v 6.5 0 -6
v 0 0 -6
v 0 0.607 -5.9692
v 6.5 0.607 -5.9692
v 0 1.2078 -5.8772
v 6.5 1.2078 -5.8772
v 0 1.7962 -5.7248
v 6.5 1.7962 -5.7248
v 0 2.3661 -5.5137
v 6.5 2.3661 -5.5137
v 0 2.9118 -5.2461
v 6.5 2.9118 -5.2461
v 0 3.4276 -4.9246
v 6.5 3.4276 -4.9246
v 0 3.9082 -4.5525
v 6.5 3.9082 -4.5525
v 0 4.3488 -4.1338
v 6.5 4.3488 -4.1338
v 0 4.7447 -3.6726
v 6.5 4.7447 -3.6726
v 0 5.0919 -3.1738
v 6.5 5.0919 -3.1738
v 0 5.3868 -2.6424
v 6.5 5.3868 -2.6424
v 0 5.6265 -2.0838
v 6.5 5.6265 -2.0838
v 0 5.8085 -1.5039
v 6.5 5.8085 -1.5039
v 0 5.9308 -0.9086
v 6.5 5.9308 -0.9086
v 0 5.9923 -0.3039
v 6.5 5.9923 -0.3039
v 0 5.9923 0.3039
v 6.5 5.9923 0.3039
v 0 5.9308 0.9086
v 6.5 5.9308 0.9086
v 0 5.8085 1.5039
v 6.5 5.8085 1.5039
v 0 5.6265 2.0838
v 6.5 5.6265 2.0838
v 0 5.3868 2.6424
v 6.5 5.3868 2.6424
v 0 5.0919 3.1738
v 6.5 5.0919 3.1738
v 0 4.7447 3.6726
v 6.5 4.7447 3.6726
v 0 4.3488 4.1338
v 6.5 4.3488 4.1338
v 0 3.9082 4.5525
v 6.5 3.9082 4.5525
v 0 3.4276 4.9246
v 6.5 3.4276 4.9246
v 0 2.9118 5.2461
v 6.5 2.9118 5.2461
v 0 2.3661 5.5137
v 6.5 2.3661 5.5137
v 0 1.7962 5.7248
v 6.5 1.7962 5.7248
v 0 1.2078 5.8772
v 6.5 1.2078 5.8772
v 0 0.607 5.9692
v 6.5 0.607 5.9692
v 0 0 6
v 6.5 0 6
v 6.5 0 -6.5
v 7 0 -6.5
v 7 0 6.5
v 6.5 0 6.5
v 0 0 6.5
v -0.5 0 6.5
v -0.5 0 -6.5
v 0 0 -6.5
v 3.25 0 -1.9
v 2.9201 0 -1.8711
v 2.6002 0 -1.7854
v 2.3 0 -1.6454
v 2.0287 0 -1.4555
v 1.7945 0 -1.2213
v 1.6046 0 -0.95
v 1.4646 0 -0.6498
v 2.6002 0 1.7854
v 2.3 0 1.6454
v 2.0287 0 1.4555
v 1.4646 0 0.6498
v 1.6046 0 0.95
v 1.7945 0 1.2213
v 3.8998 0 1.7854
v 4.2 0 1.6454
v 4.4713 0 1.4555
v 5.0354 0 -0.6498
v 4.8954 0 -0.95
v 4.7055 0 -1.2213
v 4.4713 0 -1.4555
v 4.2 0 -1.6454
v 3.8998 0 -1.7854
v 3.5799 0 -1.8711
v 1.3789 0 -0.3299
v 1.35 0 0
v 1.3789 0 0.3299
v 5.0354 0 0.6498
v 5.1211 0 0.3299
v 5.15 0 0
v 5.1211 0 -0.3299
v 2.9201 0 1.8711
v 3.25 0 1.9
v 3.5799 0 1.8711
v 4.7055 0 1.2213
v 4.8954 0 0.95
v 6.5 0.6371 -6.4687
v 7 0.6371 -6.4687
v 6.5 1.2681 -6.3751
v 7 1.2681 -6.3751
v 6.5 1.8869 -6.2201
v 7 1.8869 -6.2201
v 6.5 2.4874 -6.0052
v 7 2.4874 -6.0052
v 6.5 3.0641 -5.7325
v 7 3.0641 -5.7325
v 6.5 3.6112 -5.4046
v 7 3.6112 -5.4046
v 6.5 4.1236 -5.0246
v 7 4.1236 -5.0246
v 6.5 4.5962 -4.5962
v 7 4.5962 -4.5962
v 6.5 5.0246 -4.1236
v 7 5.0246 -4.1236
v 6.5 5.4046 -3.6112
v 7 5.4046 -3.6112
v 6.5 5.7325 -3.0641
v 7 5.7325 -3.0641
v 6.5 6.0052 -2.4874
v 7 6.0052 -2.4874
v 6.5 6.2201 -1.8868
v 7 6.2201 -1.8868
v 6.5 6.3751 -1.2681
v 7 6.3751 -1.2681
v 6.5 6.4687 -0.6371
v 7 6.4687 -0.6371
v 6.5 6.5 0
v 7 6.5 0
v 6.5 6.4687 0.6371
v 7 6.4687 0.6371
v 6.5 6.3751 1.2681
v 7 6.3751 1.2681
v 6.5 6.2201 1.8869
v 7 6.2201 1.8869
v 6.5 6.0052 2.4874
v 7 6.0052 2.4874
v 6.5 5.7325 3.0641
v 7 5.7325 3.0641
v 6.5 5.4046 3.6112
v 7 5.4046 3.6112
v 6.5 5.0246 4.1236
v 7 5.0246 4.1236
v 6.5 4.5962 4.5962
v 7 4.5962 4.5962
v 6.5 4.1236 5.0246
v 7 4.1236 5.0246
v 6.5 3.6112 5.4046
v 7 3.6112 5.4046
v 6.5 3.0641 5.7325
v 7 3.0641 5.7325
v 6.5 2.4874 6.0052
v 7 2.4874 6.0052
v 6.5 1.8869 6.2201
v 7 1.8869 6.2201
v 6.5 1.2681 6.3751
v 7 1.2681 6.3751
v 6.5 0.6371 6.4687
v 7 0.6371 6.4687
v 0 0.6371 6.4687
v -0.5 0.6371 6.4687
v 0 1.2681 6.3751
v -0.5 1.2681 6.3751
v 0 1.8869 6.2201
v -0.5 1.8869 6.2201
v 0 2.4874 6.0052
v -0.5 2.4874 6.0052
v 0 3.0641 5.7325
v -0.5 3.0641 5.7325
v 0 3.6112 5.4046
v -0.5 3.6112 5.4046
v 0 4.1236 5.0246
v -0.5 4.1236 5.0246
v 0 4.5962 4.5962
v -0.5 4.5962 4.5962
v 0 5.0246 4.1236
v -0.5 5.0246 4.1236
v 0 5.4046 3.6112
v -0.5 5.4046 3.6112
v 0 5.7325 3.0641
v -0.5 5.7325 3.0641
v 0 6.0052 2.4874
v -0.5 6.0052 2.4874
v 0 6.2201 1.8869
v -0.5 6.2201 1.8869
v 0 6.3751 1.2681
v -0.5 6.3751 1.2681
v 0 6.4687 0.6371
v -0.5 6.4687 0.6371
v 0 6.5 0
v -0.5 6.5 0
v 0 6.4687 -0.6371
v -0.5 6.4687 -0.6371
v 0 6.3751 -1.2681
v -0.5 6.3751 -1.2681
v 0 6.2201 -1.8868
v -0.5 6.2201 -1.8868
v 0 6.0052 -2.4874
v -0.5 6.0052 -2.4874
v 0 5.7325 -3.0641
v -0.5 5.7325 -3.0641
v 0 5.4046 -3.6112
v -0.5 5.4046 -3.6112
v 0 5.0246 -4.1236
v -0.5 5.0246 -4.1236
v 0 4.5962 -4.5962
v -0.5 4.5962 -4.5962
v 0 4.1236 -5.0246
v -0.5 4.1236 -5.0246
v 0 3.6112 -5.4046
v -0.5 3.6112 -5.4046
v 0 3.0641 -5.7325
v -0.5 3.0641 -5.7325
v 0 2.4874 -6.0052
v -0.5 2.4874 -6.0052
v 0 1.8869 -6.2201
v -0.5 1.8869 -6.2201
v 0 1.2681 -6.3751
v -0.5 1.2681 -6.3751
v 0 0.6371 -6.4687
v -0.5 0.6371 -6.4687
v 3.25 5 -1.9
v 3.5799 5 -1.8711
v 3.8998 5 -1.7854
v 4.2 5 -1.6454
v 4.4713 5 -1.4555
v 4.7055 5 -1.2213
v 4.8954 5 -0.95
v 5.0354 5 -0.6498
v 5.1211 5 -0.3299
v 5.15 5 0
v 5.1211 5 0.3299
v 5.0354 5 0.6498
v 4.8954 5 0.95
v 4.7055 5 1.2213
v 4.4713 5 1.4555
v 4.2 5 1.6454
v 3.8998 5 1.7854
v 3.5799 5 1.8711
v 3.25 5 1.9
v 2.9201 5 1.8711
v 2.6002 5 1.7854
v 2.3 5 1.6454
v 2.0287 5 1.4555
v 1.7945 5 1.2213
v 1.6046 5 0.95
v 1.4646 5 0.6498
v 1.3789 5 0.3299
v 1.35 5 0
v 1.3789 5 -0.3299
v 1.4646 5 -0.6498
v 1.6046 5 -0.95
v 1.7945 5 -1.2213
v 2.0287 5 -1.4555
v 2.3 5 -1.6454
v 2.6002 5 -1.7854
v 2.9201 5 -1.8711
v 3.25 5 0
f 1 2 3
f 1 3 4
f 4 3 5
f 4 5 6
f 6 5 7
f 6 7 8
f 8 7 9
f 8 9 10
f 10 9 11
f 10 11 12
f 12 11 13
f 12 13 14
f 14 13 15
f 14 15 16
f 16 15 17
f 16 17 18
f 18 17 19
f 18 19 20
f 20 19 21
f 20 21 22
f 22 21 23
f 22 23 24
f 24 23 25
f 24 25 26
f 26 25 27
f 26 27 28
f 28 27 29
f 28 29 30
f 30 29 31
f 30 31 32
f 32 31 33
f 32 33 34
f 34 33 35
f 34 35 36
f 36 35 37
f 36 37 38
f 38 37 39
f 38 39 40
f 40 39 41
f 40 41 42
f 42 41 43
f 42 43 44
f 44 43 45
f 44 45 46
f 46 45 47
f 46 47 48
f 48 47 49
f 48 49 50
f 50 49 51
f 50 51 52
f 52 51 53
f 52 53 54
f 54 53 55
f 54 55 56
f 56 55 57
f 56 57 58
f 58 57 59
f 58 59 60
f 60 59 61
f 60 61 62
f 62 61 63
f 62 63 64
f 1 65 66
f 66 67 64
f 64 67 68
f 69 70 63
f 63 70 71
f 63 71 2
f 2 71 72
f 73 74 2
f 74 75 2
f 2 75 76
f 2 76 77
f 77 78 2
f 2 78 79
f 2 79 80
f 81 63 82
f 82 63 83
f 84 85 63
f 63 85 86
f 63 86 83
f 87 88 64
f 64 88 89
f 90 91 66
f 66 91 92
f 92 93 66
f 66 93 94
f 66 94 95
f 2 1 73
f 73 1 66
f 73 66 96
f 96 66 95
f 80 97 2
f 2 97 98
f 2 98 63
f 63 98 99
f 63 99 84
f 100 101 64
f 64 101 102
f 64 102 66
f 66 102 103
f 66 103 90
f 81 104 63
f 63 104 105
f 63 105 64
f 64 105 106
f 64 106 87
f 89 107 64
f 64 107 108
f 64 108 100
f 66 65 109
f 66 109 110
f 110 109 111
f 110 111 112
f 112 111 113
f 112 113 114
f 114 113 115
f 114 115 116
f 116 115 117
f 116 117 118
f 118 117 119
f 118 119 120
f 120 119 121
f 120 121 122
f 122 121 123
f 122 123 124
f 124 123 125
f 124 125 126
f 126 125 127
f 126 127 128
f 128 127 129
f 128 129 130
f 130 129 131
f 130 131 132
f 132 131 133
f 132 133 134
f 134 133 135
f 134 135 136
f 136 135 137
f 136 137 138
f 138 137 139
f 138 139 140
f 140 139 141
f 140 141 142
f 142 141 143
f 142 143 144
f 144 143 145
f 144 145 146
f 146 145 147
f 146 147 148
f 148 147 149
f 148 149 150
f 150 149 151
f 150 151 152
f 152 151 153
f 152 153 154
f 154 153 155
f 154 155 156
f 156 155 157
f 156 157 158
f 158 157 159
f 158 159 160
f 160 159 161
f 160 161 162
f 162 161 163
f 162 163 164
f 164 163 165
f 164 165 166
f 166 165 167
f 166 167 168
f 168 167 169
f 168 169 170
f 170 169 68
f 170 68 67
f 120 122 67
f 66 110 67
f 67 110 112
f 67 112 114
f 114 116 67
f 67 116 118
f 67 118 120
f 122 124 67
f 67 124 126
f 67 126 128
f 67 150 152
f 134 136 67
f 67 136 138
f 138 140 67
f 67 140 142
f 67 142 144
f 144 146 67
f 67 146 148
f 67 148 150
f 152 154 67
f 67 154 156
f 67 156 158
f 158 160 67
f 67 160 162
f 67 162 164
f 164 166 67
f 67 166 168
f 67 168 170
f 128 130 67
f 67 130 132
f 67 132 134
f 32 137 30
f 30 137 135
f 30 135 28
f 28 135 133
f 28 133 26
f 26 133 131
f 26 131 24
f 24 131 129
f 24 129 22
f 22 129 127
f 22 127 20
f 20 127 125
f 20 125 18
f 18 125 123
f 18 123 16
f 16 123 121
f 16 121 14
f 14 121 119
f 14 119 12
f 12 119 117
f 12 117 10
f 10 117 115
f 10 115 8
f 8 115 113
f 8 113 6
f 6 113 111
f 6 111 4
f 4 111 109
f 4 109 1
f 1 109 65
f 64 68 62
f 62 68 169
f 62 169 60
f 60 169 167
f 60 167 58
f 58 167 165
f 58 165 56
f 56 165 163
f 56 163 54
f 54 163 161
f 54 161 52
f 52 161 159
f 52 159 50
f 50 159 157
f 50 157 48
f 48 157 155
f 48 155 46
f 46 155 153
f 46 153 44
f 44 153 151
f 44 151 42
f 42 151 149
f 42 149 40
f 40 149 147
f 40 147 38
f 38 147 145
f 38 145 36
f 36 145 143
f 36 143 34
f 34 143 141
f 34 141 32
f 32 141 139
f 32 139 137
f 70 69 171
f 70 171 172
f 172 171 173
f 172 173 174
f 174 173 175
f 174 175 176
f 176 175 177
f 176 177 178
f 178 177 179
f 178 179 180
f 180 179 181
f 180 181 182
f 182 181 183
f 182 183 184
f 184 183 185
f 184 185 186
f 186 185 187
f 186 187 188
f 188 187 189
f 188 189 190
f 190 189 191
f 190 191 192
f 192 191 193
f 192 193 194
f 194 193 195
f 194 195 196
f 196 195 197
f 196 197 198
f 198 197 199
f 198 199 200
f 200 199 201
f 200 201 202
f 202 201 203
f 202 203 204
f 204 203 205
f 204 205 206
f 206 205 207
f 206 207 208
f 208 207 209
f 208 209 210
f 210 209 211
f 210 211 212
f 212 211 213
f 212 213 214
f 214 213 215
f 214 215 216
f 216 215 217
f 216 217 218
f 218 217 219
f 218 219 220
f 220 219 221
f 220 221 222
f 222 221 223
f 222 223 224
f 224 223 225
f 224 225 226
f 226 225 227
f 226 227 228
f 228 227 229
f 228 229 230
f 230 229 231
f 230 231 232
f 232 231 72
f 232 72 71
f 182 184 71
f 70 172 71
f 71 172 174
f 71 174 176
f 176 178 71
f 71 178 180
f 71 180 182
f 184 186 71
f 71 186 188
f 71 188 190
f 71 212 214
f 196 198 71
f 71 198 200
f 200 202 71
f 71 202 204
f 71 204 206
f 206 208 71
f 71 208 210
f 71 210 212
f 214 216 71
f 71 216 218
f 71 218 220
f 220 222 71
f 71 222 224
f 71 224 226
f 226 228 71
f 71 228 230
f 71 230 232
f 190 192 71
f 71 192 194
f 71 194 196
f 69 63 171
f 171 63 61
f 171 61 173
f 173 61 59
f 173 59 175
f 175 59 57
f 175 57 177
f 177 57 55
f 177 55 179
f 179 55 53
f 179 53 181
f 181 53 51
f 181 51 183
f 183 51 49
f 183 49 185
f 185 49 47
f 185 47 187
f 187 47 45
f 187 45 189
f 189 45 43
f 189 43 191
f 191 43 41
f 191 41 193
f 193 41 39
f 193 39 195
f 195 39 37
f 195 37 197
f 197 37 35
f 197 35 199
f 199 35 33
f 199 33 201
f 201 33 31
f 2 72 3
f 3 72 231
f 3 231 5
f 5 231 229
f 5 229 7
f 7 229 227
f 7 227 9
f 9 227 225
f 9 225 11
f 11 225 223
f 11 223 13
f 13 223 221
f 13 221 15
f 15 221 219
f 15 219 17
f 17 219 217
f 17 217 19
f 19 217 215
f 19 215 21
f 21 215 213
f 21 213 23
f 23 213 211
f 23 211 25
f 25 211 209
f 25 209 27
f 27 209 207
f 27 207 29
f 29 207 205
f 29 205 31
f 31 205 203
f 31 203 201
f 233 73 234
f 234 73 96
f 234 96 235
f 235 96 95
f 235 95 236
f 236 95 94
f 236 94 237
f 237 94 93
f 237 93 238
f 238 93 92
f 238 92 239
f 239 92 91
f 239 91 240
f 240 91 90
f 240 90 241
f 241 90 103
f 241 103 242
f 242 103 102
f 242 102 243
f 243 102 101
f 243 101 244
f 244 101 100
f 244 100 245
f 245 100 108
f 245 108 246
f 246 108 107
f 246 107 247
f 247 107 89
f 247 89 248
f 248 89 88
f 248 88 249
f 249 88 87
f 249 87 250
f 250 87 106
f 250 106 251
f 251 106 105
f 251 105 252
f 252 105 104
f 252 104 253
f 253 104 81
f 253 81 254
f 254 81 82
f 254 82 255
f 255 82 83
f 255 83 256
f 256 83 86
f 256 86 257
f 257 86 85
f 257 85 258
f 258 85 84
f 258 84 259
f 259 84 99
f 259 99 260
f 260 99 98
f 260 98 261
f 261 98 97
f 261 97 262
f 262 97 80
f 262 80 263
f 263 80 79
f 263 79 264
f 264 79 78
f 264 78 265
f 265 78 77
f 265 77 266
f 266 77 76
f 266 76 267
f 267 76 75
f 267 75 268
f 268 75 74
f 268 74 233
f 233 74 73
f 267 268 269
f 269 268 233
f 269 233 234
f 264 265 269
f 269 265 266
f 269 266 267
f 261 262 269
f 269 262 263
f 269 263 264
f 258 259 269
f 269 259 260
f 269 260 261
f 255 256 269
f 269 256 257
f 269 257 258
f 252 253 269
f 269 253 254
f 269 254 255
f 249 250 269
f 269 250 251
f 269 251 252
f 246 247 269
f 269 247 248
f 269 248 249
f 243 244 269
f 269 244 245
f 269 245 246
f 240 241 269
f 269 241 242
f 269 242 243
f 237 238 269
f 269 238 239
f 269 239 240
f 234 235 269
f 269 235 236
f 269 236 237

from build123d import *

# Parameters (mm, degrees)
BOSS_EXTRUDE1_DEPTH = 6.5
BOSS_EXTRUDE2_DEPTH = 0.5
SKETCH4_R           = 1.9
CUT_EXTRUDE1_DEPTH  = 5


with BuildPart() as part:
    # Sketch2 → Boss-Extrude1 (new body)
    with BuildSketch(Plane(origin=(0, 0, 0), x_dir=(0, 0, -1), z_dir=(1, 0, 0))):
        with BuildLine():
            Line((-6, 0), (6, 0))
            ThreePointArc((6, 0), (0, 6), (-6, 0))
        make_face()
    extrude(amount=BOSS_EXTRUDE1_DEPTH)

    # Sketch3 → Boss-Extrude2 (add)
    with BuildSketch(Plane(origin=(6.5, 0, 0), x_dir=(0, 0, -1), z_dir=(1, 0, 0))):
        with BuildLine():
            Line((-6.5, 0), (6.5, 0))
            ThreePointArc((6.5, 0), (0, 6.5), (-6.5, 0))
        make_face()
    boss_extrude2 = extrude(amount=BOSS_EXTRUDE2_DEPTH)

    # Mirror1: Boss-Extrude2 across plane
    add(boss_extrude2.mirror(Plane(origin=(3.25, 0, 0), x_dir=(0, 0, 1), z_dir=(1, 0, 0))))

    # Sketch4 → Cut-Extrude1 (cut)
    with BuildSketch(Plane.XZ):
        with Locations(Location((3.25, 0, 0), (0, 0, 270))):
            Circle(SKETCH4_R)
    extrude(amount=-CUT_EXTRUDE1_DEPTH, mode=Mode.SUBTRACT)


solid = part.part
